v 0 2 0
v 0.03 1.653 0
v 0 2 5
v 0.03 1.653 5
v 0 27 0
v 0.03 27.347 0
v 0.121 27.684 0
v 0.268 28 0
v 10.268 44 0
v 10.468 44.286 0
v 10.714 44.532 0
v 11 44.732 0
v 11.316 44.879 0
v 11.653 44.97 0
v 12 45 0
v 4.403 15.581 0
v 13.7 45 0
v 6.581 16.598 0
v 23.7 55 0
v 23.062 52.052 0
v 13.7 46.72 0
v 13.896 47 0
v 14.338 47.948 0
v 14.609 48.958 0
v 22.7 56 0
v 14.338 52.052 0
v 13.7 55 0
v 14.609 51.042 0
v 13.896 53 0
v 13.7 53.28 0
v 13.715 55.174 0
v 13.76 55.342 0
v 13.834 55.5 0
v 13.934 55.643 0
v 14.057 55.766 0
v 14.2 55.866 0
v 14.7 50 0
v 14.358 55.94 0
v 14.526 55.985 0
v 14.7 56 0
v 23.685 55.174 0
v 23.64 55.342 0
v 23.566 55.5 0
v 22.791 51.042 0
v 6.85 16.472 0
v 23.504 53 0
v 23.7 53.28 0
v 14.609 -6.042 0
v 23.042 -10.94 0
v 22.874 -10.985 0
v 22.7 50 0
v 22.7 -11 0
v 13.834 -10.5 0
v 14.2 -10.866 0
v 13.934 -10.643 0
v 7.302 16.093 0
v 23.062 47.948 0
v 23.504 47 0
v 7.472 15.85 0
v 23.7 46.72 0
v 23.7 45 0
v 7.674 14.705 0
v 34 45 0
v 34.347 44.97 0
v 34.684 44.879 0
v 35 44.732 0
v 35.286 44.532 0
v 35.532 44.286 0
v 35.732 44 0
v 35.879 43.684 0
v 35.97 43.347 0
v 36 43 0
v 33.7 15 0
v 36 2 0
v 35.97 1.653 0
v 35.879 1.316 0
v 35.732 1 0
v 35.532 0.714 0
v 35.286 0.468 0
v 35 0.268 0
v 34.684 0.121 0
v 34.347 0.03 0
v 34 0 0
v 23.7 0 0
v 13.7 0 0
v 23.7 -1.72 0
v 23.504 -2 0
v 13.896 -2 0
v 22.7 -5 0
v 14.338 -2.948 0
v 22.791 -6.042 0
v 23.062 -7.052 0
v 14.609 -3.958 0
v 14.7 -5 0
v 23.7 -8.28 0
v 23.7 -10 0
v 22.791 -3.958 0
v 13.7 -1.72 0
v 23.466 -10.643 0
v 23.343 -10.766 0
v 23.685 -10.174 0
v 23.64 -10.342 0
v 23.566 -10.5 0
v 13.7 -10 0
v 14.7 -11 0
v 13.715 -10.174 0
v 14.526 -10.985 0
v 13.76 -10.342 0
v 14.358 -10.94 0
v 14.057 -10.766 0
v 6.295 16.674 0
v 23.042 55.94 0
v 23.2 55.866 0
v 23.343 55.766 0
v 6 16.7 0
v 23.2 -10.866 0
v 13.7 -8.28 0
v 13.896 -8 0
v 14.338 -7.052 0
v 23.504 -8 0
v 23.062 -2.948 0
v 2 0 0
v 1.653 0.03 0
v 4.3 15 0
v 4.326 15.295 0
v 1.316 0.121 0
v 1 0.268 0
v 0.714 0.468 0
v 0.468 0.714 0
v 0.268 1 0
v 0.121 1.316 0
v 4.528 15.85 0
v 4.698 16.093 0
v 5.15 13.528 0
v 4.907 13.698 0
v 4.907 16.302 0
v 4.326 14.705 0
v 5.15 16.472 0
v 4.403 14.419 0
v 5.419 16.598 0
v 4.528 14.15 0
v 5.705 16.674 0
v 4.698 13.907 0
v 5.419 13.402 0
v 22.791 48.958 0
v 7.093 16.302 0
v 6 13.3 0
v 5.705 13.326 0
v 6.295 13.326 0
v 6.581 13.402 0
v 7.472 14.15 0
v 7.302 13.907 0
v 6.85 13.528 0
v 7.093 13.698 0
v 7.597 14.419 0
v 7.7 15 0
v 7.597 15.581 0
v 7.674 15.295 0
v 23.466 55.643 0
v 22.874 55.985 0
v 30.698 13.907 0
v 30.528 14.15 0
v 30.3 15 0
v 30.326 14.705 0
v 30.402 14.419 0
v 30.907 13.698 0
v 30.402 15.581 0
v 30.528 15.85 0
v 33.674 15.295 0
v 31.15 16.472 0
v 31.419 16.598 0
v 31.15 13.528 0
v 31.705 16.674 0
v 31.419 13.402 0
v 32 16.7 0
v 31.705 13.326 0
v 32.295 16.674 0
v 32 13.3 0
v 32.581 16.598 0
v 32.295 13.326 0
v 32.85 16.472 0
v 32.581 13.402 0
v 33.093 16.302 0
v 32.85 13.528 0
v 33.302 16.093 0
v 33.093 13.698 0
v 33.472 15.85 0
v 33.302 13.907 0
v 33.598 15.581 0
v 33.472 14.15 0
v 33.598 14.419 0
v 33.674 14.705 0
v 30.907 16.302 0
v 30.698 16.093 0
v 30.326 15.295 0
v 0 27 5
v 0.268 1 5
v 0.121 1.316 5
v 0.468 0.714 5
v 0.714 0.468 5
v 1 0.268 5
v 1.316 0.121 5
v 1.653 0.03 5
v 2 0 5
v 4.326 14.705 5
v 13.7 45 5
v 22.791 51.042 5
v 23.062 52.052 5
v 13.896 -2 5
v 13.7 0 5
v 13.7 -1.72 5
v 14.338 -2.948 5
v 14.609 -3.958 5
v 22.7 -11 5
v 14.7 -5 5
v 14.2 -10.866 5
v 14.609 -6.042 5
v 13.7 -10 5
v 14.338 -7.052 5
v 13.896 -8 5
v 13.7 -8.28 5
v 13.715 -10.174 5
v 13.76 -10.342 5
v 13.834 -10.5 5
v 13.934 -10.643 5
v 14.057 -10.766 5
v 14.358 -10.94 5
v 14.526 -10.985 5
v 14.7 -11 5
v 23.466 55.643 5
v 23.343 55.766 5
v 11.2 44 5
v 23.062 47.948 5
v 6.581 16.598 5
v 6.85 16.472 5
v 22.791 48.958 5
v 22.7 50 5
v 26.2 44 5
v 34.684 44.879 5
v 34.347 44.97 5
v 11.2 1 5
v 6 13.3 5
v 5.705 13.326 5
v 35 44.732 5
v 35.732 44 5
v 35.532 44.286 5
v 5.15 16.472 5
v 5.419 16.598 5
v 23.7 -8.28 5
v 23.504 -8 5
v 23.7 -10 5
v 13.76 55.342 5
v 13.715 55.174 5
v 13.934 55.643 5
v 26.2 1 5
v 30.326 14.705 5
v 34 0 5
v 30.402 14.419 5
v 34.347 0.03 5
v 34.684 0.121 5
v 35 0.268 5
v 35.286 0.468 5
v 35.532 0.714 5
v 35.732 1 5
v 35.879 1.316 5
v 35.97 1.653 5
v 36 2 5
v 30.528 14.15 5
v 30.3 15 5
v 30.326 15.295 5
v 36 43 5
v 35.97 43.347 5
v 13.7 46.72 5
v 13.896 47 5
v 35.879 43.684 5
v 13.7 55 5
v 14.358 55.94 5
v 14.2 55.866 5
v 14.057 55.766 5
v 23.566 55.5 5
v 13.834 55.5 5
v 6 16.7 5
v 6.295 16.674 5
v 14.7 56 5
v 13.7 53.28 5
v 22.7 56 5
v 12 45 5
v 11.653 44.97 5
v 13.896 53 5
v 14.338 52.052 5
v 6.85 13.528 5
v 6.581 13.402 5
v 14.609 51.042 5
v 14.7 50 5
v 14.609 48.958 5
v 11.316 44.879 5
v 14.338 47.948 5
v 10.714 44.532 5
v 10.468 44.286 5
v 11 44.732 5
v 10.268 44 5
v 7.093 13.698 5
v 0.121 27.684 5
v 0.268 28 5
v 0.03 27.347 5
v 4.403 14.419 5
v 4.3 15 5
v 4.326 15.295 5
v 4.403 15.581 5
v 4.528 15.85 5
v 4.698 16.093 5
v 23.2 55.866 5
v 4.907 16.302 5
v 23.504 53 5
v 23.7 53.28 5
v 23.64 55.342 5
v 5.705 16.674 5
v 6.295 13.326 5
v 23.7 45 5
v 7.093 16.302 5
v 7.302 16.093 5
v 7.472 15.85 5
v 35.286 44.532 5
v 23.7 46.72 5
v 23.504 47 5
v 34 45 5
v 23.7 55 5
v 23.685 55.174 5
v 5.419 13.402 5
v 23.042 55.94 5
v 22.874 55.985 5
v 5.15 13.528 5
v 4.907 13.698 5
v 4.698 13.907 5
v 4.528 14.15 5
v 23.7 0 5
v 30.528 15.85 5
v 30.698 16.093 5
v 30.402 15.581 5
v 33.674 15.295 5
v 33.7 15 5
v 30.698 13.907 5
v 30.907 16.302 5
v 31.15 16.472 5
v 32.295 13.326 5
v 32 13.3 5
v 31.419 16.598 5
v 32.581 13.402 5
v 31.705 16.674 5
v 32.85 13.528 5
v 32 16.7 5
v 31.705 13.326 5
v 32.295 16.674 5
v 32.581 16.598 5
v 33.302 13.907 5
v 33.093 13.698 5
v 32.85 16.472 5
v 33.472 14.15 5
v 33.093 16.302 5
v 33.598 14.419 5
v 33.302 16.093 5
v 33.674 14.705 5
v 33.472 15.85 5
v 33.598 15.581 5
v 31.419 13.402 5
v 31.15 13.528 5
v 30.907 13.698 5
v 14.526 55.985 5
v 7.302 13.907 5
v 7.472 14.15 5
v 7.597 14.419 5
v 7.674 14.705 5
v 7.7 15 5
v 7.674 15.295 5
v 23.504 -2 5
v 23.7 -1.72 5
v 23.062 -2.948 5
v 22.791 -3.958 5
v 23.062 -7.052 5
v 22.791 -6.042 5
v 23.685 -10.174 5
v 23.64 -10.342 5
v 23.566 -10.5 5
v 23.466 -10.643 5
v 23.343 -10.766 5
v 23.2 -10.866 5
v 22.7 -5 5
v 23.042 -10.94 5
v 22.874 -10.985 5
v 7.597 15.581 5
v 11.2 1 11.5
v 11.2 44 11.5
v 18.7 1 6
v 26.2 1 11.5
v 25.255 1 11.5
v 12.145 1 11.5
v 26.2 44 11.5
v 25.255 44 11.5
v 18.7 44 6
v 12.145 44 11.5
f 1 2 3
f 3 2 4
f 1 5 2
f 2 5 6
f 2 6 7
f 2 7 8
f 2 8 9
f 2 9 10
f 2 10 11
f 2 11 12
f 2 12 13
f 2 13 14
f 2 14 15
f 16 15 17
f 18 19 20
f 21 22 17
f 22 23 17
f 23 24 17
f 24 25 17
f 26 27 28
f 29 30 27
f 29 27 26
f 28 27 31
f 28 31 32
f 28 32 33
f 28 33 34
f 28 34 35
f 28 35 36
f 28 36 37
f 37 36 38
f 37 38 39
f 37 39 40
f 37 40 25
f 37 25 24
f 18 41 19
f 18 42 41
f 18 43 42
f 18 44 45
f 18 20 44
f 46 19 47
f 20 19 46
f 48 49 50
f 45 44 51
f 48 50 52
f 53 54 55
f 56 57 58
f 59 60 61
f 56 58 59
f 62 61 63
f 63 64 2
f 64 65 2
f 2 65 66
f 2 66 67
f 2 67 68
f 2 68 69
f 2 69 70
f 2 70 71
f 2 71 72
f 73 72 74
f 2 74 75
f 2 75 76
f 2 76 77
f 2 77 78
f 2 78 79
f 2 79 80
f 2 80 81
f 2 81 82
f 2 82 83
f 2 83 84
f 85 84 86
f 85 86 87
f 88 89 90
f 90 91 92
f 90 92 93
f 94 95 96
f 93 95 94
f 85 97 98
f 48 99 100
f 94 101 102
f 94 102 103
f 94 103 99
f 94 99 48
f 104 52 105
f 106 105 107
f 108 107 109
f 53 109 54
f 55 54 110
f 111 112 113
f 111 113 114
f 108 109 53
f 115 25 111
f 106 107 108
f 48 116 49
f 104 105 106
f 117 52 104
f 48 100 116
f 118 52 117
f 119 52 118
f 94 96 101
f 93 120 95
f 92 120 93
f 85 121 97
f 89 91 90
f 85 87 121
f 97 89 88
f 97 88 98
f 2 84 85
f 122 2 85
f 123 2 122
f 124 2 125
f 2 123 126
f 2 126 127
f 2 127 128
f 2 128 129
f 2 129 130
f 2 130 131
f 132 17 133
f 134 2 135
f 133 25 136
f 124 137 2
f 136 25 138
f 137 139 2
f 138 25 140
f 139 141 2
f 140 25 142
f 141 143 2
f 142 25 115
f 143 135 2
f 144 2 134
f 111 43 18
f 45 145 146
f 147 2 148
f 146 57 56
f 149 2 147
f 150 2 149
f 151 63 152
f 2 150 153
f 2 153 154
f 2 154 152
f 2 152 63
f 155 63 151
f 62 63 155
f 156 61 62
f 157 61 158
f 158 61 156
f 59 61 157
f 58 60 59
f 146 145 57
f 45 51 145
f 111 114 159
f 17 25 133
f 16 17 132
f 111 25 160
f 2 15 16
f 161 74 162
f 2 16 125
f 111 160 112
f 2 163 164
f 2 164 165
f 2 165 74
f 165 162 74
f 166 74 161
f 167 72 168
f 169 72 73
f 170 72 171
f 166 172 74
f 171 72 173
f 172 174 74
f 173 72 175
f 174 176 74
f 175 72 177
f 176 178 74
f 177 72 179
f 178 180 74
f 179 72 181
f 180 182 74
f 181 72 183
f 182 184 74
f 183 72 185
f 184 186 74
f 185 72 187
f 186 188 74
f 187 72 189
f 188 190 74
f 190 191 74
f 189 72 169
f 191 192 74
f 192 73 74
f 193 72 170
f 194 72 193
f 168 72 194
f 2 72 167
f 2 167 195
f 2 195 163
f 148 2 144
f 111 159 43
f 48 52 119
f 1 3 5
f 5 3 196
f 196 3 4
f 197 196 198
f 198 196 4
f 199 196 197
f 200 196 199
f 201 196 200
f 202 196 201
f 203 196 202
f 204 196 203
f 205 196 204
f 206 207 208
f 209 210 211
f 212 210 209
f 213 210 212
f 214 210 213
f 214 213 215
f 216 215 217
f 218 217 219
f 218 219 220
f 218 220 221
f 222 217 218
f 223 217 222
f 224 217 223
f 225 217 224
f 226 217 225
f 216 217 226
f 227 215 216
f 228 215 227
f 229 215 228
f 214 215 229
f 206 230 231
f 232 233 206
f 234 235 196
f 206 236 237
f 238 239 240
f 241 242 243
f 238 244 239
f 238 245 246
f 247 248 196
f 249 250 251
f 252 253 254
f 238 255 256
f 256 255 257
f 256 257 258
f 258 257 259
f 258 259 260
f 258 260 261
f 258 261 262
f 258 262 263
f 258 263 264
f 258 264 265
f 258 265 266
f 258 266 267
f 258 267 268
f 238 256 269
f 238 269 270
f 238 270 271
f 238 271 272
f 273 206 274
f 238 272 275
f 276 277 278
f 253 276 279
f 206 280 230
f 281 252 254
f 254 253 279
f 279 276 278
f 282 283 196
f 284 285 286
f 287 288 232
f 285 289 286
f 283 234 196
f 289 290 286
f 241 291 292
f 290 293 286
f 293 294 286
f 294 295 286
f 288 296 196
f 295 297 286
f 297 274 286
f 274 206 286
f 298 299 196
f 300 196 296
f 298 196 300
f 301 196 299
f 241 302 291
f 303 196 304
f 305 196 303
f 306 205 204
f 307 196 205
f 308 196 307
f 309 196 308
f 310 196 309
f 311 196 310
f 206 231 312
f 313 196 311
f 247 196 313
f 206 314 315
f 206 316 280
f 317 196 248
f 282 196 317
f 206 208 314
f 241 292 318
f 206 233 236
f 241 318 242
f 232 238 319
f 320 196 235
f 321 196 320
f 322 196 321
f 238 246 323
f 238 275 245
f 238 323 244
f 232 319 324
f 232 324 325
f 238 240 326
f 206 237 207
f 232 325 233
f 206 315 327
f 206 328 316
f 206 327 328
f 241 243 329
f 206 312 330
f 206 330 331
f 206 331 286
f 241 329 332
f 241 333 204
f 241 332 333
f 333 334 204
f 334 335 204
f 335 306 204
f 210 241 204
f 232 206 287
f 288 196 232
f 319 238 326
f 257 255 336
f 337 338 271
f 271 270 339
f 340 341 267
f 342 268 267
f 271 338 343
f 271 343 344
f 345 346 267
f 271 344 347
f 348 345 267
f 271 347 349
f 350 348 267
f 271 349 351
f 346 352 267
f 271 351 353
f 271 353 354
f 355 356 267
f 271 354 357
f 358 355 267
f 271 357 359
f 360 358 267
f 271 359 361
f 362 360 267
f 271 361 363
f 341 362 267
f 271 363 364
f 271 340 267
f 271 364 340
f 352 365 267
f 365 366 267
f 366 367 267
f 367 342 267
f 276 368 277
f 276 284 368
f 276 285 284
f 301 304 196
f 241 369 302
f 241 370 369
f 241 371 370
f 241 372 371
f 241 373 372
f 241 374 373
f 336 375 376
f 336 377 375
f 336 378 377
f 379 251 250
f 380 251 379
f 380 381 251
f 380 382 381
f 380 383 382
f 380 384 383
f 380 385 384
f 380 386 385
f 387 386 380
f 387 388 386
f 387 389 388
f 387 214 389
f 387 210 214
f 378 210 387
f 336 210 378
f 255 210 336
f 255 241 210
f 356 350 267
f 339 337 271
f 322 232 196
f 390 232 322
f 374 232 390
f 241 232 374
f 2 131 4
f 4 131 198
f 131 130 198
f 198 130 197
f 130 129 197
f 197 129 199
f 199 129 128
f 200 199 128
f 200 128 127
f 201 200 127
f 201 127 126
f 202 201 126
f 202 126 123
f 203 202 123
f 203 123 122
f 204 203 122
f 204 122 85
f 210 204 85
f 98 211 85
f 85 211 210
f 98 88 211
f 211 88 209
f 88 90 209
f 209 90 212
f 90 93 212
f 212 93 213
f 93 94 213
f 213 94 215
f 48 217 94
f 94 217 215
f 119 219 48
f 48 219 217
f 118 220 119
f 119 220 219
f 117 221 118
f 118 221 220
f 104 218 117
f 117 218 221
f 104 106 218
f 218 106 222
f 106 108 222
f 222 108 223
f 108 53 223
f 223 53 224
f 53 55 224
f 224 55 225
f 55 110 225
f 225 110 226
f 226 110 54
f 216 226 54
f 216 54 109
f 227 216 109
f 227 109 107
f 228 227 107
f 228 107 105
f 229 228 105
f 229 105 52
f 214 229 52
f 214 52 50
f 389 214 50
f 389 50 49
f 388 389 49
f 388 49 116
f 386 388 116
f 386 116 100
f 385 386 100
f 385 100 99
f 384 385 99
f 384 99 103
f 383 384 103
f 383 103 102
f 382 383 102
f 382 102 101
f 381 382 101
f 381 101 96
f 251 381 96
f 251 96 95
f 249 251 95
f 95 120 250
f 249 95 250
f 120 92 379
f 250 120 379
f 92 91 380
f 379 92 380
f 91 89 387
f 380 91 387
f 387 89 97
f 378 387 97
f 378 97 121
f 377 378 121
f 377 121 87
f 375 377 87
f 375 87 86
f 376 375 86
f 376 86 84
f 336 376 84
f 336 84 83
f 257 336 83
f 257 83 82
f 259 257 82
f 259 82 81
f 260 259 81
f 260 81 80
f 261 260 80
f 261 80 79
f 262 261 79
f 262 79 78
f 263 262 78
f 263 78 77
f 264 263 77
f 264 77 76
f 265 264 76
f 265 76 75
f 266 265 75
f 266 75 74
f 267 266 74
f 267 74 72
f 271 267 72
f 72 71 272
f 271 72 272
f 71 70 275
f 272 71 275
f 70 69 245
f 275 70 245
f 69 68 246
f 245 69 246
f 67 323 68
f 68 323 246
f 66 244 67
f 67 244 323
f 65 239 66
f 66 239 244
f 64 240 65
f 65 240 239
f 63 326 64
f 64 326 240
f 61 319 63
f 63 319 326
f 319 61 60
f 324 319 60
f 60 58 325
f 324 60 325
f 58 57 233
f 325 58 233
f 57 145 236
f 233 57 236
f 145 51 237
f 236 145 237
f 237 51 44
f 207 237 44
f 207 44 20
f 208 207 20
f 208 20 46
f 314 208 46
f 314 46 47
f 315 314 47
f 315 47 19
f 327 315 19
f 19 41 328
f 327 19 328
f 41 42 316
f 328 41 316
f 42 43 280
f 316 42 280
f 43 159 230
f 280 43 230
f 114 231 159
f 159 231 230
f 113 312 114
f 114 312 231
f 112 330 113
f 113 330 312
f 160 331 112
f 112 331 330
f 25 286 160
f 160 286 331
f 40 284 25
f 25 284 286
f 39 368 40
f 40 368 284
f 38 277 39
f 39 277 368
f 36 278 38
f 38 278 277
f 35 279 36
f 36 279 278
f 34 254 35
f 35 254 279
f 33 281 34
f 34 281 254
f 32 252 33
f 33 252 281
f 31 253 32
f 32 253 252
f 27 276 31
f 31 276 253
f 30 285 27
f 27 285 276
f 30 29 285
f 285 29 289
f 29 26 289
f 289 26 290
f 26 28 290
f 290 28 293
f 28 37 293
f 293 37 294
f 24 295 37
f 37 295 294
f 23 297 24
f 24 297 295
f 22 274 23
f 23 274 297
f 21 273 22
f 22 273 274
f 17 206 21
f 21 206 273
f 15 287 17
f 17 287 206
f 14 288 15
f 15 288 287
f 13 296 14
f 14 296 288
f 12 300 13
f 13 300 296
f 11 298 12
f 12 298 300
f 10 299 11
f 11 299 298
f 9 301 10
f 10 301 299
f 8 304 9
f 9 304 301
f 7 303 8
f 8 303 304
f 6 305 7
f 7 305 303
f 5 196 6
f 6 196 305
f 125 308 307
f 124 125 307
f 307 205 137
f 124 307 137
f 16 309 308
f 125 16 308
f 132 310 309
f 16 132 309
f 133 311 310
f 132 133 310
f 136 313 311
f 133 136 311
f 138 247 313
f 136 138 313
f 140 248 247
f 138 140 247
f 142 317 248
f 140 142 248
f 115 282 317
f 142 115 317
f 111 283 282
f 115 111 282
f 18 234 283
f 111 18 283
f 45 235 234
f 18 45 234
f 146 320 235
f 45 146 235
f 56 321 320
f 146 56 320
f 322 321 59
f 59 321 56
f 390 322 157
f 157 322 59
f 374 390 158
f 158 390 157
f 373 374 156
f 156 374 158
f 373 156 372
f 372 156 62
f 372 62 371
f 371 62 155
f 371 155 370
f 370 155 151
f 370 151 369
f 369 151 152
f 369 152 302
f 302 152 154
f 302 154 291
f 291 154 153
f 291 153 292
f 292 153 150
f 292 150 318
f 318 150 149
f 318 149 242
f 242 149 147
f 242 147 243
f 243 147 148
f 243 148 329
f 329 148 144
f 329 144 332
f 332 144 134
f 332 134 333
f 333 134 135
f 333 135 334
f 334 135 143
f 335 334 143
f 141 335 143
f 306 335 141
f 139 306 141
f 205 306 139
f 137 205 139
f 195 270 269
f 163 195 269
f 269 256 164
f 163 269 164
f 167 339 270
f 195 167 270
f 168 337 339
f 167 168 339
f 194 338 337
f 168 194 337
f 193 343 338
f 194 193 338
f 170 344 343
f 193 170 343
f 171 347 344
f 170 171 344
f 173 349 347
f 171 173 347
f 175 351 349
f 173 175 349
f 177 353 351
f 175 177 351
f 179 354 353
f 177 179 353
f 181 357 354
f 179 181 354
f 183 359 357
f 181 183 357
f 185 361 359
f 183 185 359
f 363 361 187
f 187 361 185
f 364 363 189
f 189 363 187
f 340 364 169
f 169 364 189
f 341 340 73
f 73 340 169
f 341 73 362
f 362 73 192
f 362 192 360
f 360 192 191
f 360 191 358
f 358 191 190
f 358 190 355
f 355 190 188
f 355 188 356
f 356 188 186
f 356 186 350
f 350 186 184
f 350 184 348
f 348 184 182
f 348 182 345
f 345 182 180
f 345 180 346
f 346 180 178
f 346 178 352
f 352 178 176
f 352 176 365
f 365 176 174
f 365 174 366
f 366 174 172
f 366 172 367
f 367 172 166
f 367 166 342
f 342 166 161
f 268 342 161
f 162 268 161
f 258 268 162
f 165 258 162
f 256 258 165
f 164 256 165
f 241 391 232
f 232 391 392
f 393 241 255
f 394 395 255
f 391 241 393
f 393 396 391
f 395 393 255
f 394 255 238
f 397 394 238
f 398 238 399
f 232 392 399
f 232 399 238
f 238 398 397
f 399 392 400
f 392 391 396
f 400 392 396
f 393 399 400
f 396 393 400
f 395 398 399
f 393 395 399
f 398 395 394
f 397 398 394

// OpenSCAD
// Pen mount for Taz 3

$fn=36;

module half_hook()
{
	difference()
	{
		union()
		{
			square([5,10]);
			square([4,11]);
			translate([4,10,0]) circle(1);
		}
		translate([10,5,0]) circle(6);
	}
}

module hook()
{
	half_hook();
	mirror([1,0,0]) half_hook();
}

module base_plate()
{
	linear_extrude(height=5)
	{
		union()
		{
			hull()
			{
				translate([2,2,0]) circle(2);
				translate([2,28-1,0]) circle(2);	
				translate([12,43,0]) circle(2);
				translate([34,43,0]) circle(2);
				translate([34,2,0]) circle(2);
			}
			translate([18.7,45,0]) hook();
			translate([18.7,0,0]) rotate([180,0,0]) hook();
		}
	}
}

module holes()
{
		translate([0,0,-1]) cylinder(7, 1.7, 1.7);
		translate([26,0,-1]) cylinder(7, 1.7, 1.7);
}

module vblock()
{
	difference()
	{
		cube([15, 43, 6.5]);
		translate ([7.5, -1, 1]) rotate([0,-40,0]) cube([20,47,20]);
		translate ([7.5, -1, 1]) rotate([0,-50,0]) cube([20,47,20]);
	}
}

module taz_pen_mount()
{
	difference()
	{
		union()
		{
			base_plate();
			translate([11.2,1,5]) vblock();
		}
		translate([6,15,0]) holes();
	}
}

taz_pen_mount();
